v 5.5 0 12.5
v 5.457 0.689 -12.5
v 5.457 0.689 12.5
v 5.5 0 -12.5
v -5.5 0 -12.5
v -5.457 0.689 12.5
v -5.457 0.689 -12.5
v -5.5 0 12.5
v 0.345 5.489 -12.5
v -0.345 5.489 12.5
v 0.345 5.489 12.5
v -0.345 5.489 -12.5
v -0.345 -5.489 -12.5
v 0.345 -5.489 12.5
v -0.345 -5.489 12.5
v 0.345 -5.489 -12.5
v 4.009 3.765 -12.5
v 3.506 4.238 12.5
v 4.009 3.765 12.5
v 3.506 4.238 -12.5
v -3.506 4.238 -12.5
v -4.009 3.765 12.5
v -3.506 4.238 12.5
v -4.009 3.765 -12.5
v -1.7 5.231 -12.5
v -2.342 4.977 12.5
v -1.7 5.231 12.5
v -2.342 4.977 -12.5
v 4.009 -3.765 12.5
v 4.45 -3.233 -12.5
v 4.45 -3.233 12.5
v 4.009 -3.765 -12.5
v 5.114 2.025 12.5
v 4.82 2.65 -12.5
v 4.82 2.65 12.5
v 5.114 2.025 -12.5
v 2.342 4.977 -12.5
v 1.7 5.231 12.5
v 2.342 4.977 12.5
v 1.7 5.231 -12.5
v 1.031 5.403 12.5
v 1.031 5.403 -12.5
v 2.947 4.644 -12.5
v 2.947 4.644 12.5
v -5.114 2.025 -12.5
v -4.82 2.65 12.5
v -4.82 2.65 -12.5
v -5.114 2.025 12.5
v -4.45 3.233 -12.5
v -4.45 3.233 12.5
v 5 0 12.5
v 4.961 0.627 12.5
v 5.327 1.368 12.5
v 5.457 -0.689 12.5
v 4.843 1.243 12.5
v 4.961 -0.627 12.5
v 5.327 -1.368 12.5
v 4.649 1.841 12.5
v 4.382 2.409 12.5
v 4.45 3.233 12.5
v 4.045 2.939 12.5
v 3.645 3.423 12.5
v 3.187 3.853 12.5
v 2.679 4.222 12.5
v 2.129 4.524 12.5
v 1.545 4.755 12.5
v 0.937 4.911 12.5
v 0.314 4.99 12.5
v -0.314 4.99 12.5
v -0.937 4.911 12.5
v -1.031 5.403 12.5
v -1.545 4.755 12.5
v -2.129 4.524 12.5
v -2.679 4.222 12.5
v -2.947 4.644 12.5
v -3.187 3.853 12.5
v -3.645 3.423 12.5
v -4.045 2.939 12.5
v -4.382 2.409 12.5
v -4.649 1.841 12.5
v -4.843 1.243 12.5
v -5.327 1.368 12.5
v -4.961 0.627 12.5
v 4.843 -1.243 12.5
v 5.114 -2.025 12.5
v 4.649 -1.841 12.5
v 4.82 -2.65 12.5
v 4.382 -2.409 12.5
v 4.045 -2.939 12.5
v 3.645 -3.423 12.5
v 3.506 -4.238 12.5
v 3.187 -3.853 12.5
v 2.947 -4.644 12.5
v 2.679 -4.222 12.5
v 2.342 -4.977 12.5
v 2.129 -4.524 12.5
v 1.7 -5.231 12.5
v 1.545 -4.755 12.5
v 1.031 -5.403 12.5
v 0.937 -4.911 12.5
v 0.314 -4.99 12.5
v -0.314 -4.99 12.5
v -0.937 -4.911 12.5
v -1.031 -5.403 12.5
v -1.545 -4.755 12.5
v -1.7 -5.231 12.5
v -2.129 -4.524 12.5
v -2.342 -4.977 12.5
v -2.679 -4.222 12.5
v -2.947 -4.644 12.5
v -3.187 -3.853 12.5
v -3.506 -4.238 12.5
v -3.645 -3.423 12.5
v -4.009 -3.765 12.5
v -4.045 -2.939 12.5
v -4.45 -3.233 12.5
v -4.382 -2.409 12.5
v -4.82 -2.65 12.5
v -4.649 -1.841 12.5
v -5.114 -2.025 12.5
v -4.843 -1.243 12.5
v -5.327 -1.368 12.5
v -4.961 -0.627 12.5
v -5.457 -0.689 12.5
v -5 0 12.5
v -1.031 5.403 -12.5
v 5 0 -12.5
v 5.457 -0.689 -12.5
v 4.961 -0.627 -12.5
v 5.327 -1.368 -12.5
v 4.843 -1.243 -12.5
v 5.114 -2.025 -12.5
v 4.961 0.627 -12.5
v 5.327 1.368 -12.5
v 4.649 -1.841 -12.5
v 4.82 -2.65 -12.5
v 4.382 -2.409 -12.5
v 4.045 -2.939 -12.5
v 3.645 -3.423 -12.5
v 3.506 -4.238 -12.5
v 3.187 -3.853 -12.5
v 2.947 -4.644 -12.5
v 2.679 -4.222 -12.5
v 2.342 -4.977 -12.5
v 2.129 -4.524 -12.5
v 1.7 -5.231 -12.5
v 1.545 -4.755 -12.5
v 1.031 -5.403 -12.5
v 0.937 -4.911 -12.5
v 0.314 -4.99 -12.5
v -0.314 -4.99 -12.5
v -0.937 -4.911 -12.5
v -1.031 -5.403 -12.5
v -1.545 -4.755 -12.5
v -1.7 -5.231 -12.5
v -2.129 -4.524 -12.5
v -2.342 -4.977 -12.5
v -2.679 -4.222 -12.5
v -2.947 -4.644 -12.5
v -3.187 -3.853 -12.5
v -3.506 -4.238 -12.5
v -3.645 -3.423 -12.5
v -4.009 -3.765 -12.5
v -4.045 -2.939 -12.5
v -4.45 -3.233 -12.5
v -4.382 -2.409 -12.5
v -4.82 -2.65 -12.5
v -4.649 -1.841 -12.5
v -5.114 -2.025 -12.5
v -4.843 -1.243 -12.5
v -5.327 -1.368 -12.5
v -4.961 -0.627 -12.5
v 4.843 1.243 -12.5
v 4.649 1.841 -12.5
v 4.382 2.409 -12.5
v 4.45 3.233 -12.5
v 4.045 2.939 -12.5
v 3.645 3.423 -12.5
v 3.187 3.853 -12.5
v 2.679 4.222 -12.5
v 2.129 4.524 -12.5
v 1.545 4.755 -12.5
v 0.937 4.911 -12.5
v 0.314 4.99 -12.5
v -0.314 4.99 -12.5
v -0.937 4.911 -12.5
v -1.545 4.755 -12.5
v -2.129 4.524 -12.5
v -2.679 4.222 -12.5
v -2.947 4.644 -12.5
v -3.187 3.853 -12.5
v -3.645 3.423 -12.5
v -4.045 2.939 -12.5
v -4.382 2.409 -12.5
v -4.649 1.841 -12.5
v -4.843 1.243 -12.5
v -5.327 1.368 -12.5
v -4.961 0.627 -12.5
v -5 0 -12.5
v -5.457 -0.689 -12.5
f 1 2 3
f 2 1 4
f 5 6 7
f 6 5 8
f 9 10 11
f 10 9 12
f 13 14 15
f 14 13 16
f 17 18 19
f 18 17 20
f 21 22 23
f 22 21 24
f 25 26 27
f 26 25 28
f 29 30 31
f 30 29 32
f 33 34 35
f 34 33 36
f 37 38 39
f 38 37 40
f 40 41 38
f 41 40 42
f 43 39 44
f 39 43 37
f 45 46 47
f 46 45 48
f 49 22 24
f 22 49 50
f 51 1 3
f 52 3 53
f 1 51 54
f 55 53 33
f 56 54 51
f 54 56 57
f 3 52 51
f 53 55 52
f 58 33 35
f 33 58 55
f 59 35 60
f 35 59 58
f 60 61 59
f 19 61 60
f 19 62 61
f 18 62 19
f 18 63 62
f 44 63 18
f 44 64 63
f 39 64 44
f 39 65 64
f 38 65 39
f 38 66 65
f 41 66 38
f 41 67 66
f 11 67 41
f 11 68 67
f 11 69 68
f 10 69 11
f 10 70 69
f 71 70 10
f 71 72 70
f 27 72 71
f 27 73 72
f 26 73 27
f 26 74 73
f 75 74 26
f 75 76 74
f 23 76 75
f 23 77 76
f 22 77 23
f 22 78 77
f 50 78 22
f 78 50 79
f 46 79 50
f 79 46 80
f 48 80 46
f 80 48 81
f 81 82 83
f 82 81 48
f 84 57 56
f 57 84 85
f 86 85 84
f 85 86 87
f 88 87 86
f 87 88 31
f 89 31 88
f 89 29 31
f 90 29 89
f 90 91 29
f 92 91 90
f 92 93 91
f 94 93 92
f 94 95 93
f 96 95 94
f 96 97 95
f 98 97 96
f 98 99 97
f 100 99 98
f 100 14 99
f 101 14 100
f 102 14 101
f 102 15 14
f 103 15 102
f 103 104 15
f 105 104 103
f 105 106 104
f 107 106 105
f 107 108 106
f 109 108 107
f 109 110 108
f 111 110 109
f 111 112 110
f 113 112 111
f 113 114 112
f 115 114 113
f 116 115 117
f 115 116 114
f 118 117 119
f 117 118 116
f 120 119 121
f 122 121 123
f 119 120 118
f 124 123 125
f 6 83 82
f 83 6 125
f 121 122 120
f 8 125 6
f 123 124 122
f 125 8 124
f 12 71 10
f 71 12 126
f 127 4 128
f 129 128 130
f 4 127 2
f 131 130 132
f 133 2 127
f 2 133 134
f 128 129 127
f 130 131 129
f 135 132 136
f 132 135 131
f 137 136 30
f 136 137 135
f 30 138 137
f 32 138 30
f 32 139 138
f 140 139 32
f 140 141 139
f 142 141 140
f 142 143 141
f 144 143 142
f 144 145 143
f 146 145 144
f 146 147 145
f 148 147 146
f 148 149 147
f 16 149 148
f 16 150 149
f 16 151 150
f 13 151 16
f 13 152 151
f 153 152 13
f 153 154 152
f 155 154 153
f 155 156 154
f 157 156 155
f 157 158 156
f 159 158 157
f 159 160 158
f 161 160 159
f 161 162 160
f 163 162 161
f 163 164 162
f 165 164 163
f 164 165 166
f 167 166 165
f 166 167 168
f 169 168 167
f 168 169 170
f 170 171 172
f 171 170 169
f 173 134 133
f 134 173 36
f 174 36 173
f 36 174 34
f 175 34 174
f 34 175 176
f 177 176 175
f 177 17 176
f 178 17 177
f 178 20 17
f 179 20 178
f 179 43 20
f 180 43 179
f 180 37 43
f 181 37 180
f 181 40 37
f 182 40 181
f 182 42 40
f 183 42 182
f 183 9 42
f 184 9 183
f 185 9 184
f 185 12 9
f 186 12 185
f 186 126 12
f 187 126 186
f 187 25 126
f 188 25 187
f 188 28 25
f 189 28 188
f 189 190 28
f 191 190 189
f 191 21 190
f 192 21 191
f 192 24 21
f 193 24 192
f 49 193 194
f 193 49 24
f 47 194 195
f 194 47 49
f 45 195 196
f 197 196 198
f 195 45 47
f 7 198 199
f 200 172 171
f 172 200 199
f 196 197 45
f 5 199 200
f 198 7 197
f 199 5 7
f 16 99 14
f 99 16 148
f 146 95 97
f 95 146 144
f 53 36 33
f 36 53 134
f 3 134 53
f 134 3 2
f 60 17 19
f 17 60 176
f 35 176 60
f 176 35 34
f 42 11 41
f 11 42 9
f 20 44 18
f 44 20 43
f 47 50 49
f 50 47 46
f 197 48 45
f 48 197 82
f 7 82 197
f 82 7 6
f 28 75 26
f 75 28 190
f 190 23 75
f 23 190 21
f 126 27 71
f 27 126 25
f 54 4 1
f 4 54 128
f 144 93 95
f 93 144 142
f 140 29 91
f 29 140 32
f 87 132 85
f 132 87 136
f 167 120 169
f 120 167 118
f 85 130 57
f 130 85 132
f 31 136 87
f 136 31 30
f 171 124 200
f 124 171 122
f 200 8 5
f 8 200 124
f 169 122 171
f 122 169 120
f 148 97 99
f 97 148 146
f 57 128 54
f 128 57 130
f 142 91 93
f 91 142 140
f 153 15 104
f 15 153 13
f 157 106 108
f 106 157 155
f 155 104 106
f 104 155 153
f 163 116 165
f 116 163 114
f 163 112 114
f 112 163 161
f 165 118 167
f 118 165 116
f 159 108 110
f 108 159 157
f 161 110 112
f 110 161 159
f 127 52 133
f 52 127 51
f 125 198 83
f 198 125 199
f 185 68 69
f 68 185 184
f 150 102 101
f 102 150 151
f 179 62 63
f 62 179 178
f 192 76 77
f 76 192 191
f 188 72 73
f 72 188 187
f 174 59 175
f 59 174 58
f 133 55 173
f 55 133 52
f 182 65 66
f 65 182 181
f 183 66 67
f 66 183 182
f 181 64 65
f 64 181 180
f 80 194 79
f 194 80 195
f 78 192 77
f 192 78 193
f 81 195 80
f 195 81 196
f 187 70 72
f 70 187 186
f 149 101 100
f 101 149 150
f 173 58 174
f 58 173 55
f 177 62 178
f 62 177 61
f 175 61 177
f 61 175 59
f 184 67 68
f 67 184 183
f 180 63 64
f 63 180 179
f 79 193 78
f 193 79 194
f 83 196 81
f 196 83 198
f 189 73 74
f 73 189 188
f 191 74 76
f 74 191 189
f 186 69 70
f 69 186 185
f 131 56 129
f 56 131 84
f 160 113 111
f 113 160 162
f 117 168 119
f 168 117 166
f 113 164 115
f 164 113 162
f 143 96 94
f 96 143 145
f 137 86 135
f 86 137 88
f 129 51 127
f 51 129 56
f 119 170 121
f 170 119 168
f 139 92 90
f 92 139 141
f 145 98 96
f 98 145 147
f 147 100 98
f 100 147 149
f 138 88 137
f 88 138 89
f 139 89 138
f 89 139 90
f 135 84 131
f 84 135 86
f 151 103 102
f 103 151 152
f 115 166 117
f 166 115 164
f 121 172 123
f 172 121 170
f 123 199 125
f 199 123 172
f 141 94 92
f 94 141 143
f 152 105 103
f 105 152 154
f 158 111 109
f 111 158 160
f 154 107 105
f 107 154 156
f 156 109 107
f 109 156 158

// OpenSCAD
$fn = 50;


difference() {
	union() {
		translate(v = [0, 0, -12.5000000000]) {
			cylinder(h = 25, r = 5.5000000000);
		}
	}
	union() {
		translate(v = [0, 0, -100.0000000000]) {
			cylinder(h = 200, r = 5);
		}
	}
}
